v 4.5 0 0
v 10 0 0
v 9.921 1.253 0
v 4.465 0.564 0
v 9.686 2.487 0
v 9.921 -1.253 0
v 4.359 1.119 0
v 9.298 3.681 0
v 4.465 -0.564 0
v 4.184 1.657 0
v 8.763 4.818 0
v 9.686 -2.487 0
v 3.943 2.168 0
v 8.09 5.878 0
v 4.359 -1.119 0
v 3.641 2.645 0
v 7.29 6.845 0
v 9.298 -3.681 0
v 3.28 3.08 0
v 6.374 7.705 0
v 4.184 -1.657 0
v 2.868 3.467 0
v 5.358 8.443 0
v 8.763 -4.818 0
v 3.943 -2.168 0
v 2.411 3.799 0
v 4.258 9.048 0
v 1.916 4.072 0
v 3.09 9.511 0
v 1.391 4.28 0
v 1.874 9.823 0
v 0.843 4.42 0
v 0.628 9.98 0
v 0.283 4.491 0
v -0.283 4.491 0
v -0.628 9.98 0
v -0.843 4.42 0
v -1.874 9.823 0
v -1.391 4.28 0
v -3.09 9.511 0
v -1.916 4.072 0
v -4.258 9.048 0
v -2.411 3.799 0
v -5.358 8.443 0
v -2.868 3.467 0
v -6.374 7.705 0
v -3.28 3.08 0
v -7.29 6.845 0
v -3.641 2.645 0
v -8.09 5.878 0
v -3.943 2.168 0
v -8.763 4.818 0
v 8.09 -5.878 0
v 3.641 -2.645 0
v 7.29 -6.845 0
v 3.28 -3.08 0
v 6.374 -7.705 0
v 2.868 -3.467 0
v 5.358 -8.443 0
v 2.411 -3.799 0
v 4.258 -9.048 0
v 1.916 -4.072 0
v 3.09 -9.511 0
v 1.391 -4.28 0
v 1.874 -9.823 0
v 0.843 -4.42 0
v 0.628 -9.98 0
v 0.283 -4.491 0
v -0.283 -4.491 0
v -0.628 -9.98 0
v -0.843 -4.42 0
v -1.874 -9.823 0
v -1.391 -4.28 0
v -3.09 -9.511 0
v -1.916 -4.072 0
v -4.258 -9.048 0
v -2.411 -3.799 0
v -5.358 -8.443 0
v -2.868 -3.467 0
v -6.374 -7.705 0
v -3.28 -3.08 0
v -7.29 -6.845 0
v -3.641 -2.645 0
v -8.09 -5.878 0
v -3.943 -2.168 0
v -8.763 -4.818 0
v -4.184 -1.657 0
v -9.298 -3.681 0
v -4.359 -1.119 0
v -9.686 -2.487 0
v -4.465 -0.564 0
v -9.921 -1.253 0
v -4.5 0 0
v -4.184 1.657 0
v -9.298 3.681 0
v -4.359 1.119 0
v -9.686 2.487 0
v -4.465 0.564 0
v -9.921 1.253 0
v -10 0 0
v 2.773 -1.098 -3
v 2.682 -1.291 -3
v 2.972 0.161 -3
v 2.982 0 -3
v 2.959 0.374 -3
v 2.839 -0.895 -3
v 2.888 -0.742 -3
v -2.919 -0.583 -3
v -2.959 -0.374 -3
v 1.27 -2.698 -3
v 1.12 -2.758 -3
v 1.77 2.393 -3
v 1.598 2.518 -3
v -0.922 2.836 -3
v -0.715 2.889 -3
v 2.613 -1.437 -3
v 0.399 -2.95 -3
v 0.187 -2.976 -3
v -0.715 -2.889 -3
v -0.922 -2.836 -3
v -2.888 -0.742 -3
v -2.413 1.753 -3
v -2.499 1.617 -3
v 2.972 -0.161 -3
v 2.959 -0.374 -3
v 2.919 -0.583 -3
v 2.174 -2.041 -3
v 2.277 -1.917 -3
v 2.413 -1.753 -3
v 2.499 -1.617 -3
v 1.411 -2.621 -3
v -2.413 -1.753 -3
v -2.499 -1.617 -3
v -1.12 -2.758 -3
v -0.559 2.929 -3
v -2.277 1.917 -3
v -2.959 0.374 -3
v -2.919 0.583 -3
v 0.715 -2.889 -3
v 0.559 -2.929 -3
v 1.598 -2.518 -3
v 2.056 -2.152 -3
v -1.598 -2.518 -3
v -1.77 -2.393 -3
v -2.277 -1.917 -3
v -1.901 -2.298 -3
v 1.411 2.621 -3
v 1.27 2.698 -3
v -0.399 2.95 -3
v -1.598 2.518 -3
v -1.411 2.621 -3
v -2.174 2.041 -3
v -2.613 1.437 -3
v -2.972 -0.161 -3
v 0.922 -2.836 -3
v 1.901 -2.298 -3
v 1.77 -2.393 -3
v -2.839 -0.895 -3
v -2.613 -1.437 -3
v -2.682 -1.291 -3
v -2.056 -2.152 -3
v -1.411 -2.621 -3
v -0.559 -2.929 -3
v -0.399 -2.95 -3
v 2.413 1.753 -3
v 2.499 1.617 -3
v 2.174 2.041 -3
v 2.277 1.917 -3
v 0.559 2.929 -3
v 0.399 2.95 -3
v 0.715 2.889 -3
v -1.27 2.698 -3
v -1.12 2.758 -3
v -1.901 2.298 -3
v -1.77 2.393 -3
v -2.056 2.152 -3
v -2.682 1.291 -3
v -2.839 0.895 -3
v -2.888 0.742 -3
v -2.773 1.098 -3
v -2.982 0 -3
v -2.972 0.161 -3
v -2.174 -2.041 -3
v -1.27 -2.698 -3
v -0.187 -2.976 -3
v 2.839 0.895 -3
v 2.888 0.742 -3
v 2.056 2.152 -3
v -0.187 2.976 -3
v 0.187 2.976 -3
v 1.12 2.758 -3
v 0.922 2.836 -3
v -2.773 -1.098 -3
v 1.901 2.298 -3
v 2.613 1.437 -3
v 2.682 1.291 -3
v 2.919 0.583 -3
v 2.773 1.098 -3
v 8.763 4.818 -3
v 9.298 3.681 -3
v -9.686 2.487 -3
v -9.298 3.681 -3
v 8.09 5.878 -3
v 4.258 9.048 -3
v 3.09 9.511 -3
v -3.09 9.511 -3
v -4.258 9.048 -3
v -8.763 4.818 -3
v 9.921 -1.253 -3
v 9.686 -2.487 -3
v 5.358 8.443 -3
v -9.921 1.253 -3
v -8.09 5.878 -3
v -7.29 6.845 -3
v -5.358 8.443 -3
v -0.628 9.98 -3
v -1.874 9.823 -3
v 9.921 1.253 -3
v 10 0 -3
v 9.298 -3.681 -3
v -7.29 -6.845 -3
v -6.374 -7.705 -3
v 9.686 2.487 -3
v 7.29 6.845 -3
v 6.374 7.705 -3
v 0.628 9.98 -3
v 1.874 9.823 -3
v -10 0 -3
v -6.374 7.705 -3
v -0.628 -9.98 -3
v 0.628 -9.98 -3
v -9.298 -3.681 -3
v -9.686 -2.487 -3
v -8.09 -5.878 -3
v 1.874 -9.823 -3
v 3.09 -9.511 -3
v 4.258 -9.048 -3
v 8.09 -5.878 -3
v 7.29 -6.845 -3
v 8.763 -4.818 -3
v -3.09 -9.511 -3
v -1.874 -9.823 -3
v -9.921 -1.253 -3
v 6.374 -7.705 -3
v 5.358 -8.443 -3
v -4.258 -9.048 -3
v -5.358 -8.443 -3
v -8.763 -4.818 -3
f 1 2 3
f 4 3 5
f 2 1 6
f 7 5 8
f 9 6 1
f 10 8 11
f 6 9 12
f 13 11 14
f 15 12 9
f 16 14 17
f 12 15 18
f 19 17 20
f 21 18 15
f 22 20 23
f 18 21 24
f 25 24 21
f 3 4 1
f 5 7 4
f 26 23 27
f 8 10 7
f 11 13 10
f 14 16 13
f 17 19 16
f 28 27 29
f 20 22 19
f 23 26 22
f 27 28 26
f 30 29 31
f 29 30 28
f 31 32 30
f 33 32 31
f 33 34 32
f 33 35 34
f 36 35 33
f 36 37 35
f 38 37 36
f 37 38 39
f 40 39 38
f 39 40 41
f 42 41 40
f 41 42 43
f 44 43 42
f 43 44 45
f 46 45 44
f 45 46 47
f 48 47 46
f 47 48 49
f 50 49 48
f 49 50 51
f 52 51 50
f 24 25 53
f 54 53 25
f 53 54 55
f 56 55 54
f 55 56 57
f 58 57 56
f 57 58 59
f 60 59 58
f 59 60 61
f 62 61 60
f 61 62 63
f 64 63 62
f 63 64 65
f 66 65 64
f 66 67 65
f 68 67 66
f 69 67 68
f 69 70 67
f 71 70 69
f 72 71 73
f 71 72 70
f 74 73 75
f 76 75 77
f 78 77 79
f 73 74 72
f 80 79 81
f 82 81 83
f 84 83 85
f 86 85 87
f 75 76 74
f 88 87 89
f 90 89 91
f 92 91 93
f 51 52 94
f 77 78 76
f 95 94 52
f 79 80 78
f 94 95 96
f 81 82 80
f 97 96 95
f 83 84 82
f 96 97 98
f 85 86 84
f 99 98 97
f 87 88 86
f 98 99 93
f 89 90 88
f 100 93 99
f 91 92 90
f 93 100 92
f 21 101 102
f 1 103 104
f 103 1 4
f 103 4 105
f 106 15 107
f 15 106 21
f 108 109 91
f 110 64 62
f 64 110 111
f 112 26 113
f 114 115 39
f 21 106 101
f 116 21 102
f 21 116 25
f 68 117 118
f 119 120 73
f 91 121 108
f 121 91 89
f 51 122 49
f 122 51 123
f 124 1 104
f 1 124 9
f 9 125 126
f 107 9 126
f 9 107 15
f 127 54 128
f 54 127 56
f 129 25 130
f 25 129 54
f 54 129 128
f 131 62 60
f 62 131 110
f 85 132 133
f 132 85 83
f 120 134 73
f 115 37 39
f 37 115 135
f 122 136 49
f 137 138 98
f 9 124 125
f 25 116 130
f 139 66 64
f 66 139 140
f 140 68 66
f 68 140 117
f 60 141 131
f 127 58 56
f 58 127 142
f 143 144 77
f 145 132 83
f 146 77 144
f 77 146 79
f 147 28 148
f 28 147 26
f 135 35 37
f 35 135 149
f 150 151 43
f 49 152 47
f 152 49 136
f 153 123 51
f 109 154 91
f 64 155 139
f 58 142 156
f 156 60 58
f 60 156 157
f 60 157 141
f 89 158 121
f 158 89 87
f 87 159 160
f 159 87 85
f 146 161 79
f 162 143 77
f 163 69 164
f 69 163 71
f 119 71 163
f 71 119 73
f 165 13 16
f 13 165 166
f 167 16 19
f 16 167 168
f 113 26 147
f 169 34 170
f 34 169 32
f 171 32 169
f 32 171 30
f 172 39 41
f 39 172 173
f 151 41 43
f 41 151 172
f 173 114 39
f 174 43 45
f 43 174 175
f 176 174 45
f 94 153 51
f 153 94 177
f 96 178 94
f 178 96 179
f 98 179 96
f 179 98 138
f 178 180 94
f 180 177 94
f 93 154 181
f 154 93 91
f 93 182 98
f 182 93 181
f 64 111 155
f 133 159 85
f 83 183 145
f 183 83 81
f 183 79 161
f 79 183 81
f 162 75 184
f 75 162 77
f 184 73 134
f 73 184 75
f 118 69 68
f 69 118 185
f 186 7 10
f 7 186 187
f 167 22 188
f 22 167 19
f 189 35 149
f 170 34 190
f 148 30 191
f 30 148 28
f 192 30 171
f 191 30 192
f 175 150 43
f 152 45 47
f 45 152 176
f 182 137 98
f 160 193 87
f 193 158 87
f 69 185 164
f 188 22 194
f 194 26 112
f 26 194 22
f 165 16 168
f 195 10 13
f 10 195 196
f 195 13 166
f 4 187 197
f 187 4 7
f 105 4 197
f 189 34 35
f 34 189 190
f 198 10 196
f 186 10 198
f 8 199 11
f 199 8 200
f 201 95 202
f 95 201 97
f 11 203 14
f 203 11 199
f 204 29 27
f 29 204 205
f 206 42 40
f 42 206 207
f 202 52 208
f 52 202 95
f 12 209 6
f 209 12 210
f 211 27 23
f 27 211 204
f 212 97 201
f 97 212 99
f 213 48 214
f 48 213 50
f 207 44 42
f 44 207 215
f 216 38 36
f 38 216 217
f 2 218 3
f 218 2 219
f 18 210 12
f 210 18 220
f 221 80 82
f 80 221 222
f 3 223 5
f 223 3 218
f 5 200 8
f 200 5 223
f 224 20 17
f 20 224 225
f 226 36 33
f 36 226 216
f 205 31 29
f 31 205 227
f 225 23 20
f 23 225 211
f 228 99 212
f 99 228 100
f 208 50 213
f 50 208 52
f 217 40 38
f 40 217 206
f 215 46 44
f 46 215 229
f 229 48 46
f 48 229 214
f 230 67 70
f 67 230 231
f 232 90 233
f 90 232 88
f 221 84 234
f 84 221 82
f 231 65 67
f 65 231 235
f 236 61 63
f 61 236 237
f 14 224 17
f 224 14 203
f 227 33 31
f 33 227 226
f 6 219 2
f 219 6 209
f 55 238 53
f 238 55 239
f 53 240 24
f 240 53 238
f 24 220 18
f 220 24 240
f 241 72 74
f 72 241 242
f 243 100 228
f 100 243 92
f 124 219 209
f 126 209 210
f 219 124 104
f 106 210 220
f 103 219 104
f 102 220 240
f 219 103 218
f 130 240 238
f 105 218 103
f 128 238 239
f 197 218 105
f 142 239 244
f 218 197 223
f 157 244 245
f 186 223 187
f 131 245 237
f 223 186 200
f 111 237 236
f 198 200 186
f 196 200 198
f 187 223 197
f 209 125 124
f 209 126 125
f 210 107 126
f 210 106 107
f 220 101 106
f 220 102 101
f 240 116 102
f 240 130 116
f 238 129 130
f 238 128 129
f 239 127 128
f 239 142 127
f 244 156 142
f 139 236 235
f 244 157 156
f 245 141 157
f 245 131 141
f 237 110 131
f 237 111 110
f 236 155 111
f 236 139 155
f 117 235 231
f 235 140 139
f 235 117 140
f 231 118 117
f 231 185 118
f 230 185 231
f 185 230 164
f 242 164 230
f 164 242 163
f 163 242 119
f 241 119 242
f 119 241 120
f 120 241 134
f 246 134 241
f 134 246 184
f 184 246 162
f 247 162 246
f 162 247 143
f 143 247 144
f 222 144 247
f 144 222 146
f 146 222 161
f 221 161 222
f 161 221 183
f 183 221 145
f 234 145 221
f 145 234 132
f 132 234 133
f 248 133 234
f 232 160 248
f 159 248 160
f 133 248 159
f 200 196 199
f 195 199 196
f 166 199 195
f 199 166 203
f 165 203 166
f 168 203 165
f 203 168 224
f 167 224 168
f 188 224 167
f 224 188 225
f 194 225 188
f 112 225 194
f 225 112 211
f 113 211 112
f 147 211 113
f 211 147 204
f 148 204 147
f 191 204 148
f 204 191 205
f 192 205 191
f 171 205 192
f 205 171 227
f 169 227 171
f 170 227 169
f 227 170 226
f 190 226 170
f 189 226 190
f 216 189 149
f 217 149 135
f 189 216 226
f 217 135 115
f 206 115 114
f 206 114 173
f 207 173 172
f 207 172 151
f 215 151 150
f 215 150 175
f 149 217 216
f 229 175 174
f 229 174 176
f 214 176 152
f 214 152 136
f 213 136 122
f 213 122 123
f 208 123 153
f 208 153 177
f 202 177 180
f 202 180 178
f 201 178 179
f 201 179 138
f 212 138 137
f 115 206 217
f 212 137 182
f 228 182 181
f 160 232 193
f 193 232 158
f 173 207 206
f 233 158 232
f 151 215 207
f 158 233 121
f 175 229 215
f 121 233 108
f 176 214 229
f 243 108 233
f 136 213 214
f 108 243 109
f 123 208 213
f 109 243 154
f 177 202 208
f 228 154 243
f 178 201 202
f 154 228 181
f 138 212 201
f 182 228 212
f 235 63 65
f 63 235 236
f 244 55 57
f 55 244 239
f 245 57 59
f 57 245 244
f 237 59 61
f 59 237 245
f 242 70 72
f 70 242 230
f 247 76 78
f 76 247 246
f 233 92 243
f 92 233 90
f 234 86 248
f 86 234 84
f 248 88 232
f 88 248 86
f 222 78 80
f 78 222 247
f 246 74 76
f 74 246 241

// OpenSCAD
$fn = 50;


difference() {
	union() {
		translate(v = [0, 0, -3.0000000000]) {
			cylinder(h = 3, r = 10.0000000000);
		}
		cylinder(h = 0, r = 13.0000000000);
	}
	union() {
		translate(v = [0, 0, 0]) {
			rotate(a = [0, 0, 0]) {
				difference() {
					union() {
						#translate(v = [0, 0, -3.0000000000]) {
							cylinder(h = 3, r = 2.2500000000);
						}
						#translate(v = [0, 0, -4.2000000000]) {
							cylinder(h = 4.2000000000, r1 = 2.3750000000, r2 = 4.5000000000);
						}
						#translate(v = [0, 0, -3.0000000000]) {
							cylinder(h = 3, r = 2.3750000000);
						}
						#translate(v = [0, 0, -3.0000000000]) {
							cylinder(h = 3, r = 2.2500000000);
						}
					}
					union();
				}
			}
		}
	}
}
